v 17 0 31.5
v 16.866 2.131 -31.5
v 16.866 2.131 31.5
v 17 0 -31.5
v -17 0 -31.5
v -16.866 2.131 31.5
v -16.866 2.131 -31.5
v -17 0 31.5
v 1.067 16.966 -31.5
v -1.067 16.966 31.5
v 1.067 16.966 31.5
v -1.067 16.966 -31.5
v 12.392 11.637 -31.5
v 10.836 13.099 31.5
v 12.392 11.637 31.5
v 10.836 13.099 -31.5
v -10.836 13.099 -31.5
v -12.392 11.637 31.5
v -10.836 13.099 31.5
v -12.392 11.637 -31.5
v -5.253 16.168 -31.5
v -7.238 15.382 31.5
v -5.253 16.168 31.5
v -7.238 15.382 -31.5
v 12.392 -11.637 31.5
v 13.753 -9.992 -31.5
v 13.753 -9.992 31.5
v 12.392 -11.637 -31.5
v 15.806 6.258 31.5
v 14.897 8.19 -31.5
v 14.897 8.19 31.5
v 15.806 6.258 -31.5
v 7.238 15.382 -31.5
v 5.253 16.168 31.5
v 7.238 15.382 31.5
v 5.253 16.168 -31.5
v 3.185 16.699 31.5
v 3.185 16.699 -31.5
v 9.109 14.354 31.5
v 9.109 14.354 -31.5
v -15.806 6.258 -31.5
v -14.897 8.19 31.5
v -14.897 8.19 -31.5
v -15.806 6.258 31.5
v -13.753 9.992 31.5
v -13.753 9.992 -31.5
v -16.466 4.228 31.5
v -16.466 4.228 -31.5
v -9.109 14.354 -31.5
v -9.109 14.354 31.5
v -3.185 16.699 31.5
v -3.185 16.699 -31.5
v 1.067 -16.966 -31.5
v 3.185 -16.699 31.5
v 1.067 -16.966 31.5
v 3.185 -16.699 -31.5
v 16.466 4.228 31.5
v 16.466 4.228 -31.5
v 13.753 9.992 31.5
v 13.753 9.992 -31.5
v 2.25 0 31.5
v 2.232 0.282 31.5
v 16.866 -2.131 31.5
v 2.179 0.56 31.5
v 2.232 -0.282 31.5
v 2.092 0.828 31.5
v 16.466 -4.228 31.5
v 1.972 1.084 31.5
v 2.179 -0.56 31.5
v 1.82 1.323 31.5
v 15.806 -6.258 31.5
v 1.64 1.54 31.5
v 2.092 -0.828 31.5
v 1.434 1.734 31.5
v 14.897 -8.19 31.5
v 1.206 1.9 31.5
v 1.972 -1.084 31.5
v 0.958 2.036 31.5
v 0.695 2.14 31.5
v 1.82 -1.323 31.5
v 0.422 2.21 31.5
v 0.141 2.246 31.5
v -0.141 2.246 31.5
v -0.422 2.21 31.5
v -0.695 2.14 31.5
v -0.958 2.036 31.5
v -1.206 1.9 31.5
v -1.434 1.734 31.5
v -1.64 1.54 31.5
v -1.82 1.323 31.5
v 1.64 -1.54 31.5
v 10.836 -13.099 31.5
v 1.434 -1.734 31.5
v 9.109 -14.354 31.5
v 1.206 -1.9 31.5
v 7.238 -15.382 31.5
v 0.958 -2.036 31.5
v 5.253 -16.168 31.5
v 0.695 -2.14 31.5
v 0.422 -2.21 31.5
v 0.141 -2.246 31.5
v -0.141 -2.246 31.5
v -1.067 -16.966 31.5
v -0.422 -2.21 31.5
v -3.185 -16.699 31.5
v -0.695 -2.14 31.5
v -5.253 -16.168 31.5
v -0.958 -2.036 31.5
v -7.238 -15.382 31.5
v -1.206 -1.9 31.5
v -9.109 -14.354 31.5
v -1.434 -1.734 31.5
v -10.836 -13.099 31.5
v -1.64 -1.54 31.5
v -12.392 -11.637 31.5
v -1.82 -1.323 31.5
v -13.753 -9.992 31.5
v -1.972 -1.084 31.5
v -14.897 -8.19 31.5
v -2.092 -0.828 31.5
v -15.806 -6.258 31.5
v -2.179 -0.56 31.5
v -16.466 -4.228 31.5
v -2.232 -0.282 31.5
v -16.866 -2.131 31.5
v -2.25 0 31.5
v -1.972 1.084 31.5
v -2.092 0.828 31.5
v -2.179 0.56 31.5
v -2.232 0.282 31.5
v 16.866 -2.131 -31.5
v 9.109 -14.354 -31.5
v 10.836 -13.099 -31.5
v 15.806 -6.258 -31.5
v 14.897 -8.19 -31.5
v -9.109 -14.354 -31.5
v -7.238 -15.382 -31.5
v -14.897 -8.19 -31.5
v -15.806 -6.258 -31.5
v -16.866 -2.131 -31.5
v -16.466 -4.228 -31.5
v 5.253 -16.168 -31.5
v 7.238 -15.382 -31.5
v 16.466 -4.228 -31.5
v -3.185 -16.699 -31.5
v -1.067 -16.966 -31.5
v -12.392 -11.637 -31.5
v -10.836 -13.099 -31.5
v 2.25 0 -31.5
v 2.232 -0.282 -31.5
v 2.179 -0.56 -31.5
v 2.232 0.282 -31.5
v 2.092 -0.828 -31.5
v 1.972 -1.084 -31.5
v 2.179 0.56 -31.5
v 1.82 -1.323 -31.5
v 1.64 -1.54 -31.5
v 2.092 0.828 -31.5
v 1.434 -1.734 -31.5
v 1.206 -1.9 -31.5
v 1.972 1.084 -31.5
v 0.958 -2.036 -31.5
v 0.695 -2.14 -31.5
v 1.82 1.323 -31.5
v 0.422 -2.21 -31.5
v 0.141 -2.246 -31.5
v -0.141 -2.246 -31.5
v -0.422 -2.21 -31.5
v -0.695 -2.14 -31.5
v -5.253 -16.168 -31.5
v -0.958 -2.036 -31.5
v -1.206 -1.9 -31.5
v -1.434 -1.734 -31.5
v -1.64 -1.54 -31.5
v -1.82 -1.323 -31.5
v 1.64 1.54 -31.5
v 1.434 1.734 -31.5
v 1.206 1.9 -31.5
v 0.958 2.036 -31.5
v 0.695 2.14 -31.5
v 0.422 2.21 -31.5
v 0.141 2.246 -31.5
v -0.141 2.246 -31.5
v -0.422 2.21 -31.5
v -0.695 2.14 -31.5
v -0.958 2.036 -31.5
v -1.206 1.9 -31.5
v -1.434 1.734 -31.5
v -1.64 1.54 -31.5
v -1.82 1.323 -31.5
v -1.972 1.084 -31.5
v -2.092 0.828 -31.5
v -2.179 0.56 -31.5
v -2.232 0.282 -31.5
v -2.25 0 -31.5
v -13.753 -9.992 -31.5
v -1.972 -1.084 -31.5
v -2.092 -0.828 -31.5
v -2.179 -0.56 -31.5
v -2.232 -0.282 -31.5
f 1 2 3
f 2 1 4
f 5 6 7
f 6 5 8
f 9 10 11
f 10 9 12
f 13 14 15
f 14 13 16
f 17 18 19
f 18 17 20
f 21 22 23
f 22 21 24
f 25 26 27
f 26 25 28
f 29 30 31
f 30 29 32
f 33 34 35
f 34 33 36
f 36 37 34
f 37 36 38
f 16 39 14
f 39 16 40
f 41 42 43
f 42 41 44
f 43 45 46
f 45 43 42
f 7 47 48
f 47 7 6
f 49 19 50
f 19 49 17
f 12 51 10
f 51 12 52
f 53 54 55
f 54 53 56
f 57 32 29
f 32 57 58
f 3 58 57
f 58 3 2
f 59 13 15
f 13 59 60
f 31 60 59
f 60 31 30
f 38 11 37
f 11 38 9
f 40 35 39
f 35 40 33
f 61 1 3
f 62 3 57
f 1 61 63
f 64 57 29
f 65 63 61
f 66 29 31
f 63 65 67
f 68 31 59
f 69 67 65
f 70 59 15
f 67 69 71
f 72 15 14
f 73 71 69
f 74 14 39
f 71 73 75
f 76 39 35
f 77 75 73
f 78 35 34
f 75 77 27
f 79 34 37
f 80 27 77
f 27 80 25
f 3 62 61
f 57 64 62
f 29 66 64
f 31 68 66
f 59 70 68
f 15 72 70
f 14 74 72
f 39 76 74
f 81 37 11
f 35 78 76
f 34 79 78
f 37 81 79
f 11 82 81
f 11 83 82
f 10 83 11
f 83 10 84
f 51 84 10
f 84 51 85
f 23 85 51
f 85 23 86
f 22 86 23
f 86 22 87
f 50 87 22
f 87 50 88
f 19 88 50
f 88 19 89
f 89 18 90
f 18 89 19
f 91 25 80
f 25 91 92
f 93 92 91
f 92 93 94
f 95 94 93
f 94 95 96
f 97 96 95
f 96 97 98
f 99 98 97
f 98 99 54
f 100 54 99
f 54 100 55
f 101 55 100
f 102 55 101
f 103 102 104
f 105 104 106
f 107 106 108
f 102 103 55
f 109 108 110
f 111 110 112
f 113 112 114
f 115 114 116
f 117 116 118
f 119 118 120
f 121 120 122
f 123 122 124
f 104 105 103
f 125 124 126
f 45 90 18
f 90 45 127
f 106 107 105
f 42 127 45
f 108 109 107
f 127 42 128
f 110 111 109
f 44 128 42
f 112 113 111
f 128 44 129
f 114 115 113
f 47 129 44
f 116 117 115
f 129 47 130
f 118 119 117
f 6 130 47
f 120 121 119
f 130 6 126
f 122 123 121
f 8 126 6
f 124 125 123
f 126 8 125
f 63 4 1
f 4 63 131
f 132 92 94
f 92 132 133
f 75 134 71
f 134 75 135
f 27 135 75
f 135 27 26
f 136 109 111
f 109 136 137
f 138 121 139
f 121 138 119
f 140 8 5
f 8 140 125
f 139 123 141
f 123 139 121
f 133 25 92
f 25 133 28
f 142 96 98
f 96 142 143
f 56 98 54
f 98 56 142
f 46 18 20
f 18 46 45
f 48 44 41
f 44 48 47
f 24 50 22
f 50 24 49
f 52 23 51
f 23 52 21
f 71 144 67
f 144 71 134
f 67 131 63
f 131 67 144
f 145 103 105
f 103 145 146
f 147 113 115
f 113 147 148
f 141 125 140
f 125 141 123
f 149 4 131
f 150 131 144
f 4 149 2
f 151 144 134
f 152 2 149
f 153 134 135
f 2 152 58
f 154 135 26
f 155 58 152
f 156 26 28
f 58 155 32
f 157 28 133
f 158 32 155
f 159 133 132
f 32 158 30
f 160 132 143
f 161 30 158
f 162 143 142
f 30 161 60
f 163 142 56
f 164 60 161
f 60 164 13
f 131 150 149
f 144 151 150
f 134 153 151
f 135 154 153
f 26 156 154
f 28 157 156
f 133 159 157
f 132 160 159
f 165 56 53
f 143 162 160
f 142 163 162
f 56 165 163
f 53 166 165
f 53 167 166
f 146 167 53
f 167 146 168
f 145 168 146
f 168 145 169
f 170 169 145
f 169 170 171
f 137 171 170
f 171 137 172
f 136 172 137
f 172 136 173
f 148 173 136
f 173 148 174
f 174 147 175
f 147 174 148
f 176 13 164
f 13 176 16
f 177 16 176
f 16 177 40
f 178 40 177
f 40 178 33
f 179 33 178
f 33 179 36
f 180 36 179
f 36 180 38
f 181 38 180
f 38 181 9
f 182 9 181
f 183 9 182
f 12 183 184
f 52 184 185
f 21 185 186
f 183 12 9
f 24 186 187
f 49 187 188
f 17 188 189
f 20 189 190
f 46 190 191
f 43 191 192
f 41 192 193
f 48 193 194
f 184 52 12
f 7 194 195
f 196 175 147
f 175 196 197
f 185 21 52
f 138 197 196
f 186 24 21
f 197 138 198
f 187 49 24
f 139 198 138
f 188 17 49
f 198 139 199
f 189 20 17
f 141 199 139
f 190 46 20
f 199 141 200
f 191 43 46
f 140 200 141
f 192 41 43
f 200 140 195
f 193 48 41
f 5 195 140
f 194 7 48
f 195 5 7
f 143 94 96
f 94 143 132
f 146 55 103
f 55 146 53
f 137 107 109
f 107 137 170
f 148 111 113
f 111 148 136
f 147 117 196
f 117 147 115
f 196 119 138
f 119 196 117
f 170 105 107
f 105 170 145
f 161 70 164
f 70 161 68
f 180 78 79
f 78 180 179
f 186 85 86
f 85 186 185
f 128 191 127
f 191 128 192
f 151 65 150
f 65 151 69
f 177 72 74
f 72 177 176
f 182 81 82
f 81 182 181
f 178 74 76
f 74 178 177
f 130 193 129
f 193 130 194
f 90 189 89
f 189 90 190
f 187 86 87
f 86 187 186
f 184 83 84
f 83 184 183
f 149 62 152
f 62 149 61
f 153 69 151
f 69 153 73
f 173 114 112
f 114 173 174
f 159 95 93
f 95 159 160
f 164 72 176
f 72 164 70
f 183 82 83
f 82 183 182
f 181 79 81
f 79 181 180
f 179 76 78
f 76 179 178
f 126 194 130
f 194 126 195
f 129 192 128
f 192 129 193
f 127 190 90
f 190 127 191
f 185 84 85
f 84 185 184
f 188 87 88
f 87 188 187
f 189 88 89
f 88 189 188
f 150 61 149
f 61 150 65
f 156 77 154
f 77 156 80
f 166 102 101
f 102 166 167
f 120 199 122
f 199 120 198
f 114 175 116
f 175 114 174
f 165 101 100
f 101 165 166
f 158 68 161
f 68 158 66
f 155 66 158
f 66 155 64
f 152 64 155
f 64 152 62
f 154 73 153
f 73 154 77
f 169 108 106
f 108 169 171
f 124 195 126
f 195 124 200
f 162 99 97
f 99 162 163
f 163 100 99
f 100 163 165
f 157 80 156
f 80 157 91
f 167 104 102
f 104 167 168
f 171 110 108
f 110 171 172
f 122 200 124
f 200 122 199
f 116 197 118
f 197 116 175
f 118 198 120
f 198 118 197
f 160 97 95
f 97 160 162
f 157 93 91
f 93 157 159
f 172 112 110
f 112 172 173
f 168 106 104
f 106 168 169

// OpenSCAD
$fn = 50;


difference() {
	union() {
		translate(v = [0, 0, -31.5000000000]) {
			cylinder(h = 63, r = 17.0000000000);
		}
	}
	union() {
		translate(v = [0, 0, -100.0000000000]) {
			cylinder(h = 200, r = 2.2500000000);
		}
	}
}
